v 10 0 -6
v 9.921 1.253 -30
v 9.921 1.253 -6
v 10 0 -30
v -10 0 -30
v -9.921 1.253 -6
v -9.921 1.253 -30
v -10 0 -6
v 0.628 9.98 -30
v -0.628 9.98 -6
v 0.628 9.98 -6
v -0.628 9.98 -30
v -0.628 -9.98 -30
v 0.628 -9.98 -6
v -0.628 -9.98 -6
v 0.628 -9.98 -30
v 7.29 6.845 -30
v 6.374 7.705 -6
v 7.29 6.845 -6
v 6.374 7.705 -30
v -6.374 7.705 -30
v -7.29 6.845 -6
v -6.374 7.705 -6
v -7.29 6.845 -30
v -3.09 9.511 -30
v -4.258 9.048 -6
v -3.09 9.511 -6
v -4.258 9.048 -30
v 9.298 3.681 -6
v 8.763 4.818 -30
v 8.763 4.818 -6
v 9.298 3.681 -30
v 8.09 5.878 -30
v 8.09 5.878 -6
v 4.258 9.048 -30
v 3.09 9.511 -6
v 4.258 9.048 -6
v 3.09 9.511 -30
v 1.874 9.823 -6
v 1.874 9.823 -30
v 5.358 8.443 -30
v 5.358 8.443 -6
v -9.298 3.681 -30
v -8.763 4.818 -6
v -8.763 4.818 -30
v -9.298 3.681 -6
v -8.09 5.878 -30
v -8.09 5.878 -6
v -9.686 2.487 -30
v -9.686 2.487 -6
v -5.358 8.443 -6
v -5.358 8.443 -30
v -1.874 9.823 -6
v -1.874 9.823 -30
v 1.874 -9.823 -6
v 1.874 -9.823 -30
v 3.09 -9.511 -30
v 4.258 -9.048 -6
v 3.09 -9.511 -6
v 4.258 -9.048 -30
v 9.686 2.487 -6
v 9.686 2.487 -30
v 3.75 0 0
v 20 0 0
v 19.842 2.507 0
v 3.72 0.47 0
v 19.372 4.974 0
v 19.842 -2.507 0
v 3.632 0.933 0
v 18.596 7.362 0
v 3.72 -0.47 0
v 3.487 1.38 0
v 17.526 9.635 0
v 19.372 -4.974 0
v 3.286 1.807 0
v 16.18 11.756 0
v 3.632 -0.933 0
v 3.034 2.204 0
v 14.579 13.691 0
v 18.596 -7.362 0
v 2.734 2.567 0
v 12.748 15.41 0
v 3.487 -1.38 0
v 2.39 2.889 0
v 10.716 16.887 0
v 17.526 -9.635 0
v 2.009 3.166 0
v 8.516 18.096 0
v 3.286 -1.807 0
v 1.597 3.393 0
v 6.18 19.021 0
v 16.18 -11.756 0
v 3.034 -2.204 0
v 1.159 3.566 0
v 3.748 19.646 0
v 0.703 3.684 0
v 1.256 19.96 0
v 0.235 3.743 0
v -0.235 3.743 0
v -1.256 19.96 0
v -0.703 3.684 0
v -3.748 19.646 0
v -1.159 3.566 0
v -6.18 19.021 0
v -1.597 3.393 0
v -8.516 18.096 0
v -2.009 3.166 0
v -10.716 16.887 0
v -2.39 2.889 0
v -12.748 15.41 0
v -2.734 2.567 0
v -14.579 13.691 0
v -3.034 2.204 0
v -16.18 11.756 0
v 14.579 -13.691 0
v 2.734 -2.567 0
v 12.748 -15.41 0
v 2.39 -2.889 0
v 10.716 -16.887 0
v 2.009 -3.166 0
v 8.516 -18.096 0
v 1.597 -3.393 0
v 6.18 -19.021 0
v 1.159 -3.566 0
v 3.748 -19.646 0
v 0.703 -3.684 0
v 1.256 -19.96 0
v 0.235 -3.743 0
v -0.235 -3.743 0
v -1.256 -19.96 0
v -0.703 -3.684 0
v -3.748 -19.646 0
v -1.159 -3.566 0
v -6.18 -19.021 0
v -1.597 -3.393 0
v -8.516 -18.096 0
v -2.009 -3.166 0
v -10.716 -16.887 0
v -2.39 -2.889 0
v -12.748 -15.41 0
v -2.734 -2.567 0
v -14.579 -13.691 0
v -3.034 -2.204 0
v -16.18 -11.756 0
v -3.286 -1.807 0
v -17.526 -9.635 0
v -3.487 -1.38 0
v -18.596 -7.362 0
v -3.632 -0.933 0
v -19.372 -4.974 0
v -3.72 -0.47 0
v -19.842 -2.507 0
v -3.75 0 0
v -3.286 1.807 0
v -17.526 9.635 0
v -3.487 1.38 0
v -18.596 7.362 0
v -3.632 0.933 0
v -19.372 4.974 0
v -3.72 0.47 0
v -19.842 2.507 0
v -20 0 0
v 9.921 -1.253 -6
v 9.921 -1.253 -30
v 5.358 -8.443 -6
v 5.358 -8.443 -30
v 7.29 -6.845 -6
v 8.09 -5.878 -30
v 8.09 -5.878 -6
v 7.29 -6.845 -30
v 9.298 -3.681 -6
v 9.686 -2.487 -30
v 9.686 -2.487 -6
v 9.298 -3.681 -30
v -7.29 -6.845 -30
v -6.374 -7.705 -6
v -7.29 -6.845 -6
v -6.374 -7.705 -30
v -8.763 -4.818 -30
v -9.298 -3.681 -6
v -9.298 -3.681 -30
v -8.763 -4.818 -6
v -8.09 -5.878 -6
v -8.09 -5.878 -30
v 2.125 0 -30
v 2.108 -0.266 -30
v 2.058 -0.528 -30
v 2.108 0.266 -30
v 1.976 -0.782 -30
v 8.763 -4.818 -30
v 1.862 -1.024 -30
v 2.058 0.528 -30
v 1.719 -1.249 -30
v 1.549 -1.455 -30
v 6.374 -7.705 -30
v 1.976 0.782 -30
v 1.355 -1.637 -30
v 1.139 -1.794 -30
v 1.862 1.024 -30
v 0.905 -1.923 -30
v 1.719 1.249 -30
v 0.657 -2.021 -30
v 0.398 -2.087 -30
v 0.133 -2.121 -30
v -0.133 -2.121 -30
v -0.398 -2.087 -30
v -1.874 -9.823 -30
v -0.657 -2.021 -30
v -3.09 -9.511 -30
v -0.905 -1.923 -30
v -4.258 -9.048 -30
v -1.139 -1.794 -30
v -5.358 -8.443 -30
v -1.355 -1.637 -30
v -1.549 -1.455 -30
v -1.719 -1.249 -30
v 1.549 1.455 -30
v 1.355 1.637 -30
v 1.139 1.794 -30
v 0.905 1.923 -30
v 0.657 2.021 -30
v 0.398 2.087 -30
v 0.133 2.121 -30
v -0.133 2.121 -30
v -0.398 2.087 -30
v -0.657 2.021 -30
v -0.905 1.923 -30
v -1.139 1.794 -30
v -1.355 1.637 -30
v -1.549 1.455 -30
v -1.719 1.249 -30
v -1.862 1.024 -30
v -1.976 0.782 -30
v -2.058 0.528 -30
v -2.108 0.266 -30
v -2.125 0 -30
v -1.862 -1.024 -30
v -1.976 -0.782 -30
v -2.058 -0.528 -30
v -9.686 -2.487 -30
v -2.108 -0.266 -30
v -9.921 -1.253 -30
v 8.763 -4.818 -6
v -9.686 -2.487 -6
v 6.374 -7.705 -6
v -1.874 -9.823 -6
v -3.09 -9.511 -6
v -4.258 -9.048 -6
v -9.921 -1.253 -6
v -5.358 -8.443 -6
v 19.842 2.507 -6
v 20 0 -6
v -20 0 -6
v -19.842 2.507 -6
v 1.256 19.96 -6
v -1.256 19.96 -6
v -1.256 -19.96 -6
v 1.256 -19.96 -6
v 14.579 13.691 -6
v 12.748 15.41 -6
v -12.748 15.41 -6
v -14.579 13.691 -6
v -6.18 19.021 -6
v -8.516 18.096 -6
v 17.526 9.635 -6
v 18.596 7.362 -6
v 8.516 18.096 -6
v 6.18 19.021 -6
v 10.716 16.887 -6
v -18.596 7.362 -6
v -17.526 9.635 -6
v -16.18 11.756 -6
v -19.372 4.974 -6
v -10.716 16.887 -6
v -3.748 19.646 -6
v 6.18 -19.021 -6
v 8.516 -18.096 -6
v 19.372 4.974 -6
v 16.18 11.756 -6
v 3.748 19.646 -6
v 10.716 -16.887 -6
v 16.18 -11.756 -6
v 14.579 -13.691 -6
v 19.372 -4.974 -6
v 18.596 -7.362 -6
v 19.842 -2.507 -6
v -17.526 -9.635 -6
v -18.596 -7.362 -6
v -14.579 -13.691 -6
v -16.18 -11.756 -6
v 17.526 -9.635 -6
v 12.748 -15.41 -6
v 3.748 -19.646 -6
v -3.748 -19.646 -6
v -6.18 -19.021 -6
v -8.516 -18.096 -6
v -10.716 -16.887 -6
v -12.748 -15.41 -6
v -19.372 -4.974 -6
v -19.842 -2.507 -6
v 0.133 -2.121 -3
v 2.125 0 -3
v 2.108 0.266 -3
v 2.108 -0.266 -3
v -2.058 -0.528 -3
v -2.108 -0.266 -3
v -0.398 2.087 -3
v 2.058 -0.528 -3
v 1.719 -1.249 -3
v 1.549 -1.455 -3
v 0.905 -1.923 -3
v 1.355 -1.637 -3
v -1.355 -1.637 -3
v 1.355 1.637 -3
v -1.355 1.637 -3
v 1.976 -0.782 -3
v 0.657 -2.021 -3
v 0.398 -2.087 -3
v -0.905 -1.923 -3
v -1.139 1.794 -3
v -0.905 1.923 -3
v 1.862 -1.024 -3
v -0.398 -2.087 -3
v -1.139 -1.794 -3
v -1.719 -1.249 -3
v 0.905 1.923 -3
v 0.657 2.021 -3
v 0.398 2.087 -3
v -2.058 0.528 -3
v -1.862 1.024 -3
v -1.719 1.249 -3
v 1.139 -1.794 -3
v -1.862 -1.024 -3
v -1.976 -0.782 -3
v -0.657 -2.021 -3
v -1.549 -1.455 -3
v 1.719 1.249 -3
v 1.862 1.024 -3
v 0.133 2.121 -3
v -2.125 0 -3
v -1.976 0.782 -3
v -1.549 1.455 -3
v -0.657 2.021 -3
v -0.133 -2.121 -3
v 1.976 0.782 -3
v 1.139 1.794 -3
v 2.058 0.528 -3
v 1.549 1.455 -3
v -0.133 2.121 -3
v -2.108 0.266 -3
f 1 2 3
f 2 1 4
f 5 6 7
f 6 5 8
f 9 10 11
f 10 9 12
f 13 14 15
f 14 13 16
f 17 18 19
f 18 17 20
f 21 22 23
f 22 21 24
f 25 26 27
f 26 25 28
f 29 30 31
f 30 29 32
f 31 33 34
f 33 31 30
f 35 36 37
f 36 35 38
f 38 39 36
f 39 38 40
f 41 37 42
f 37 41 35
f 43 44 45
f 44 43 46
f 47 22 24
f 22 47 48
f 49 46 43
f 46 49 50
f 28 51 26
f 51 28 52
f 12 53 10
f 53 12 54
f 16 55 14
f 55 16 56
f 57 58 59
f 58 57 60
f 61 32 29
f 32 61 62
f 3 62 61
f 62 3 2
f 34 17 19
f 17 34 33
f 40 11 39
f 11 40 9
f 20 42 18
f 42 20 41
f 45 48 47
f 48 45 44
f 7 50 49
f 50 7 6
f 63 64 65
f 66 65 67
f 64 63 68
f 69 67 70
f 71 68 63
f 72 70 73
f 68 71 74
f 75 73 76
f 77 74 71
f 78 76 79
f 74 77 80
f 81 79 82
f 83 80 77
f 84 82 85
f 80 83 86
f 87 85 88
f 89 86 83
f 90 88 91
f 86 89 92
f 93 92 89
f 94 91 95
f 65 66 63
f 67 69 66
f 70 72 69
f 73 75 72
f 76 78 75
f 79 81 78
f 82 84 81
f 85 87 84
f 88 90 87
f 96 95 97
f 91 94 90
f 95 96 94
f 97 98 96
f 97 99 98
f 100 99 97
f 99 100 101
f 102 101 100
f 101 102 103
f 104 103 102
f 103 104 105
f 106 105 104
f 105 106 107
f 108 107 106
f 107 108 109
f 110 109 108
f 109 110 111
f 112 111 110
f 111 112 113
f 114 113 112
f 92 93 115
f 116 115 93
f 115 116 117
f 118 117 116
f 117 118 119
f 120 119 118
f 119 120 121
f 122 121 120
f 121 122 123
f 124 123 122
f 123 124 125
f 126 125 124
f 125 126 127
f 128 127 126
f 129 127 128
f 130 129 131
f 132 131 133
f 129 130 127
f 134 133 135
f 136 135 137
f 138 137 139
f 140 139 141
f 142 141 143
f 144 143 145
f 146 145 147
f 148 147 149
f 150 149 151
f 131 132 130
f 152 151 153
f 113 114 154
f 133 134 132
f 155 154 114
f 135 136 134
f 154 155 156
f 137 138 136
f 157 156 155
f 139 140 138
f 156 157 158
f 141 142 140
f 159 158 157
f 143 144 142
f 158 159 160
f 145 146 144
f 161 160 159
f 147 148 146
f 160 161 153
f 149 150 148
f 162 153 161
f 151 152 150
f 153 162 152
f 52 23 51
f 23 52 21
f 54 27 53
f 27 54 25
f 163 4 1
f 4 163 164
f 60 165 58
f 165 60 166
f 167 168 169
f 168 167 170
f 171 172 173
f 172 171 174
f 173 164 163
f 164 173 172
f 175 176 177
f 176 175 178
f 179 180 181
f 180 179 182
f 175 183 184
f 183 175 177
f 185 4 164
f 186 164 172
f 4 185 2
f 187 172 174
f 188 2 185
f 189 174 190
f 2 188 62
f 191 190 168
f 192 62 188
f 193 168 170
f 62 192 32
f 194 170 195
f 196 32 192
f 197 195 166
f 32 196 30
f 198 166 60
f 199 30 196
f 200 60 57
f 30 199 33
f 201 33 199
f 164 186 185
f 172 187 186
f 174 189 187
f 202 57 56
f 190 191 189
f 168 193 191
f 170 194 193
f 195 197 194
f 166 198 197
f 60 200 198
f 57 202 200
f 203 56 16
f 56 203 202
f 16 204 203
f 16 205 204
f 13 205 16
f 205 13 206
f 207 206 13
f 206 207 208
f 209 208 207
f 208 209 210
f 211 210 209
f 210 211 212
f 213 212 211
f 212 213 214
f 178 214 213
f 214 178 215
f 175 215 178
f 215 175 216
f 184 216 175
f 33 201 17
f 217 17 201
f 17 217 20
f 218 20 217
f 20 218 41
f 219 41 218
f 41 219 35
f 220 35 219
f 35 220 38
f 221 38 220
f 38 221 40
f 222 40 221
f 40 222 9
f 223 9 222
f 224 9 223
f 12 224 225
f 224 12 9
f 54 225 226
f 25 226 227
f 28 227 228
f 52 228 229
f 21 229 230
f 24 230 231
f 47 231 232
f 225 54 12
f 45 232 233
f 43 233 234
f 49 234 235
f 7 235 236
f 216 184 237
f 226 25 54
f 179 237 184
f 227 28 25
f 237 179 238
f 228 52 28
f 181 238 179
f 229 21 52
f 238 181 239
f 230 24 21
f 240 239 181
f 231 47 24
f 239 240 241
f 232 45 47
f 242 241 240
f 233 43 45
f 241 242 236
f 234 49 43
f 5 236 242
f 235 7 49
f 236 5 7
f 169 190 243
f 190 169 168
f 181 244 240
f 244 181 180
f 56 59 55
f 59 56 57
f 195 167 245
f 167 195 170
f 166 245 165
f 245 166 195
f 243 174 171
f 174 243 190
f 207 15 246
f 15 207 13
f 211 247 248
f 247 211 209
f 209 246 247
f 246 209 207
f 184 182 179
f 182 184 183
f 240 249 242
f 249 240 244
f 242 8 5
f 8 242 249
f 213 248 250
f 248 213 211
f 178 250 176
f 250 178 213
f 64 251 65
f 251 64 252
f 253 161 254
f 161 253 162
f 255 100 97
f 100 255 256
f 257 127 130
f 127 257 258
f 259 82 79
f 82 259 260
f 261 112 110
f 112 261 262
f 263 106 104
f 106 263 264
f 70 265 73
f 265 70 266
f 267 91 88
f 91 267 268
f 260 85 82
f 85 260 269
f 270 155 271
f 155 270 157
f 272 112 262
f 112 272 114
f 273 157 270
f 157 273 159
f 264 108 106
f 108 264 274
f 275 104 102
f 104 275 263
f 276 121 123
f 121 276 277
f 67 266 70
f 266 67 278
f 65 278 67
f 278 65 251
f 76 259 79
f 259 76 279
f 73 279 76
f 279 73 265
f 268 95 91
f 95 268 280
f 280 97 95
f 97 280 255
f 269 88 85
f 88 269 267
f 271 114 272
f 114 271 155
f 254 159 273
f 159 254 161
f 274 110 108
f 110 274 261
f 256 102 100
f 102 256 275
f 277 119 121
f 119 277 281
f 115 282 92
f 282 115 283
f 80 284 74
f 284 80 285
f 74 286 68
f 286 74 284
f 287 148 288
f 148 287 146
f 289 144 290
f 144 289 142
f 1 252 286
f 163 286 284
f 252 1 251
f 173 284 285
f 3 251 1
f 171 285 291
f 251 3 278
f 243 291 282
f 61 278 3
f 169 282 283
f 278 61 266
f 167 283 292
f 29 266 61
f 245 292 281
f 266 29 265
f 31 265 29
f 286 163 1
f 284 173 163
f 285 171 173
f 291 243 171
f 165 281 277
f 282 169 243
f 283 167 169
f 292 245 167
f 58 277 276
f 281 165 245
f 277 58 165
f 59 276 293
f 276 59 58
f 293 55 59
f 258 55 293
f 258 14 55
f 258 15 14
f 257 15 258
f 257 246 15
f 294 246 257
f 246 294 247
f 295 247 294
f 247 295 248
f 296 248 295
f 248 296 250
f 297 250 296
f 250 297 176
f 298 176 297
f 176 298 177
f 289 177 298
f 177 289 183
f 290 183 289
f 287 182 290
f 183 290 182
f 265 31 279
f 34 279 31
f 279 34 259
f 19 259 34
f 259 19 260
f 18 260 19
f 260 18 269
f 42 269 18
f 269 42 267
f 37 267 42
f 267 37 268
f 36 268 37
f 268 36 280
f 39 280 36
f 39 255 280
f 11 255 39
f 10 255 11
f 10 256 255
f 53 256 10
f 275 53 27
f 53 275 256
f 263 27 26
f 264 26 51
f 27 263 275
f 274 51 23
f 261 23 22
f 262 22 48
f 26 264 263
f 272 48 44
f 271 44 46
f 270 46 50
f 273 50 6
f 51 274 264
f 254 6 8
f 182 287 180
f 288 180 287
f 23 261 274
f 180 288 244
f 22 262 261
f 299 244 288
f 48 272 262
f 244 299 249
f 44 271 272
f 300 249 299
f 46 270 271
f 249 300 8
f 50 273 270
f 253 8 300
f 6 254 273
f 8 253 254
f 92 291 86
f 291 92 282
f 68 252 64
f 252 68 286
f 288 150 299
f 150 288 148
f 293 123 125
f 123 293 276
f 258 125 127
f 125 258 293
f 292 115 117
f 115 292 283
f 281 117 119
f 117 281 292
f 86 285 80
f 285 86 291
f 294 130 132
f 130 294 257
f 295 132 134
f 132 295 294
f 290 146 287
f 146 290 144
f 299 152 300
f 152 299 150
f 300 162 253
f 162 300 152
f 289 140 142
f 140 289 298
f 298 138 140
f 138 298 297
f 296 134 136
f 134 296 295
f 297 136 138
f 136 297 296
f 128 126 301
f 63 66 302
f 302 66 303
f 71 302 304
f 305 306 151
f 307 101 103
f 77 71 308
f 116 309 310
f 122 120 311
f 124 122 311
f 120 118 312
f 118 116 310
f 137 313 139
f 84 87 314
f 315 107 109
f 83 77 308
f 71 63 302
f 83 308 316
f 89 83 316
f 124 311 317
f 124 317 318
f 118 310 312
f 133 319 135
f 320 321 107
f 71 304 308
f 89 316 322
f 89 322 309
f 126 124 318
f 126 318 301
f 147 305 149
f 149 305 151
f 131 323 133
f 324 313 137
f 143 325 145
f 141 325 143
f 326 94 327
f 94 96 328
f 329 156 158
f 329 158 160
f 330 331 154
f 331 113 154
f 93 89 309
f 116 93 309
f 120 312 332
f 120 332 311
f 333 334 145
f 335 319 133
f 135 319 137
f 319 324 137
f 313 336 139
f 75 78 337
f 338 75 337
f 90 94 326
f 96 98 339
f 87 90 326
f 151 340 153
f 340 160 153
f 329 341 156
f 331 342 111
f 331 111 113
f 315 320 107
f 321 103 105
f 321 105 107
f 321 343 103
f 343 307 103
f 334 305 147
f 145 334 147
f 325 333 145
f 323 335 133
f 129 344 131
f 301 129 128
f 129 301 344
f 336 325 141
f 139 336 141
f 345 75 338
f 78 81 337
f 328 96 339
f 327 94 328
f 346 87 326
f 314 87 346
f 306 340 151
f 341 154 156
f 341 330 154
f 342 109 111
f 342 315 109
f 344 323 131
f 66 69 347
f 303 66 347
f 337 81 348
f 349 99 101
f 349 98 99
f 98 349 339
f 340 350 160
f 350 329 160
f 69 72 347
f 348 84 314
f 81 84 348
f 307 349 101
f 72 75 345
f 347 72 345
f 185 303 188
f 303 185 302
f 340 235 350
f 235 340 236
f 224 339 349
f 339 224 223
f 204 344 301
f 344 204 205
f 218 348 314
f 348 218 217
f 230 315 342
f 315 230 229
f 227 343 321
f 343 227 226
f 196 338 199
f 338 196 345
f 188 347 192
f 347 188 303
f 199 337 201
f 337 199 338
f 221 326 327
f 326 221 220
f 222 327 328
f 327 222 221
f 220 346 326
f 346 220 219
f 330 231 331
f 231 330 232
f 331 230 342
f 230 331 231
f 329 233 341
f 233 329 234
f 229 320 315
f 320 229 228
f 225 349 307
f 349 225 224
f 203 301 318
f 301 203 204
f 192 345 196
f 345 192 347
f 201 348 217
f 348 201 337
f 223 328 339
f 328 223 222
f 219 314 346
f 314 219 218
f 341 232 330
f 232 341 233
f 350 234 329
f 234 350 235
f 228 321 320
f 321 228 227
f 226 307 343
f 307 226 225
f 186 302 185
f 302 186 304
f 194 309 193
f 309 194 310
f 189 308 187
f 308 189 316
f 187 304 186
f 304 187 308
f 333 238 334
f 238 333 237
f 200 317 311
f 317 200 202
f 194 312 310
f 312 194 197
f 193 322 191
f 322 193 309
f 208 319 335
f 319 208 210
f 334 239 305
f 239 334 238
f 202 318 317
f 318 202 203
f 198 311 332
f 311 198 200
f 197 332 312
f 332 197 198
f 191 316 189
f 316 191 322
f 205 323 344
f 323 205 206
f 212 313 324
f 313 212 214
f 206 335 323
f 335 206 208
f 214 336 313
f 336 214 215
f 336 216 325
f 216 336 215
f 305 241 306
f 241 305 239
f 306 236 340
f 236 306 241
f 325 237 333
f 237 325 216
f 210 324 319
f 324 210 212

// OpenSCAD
$fn = 50;


difference() {
	union() {
		translate(v = [0, 0, -30.0000000000]) {
			cylinder(h = 30, r = 10.0000000000);
		}
		translate(v = [0, 0, -6.0000000000]) {
			cylinder(h = 6, r = 20.0000000000);
		}
	}
	union() {
		translate(v = [0, 0, 0]) {
			rotate(a = [0, 0, 0]) {
				difference() {
					union() {
						#translate(v = [0, 0, -30.0000000000]) {
							cylinder(h = 30, r = 2.0000000000);
						}
						#translate(v = [0, 0, -3]) {
							cylinder(h = 3, r = 10.0000000000, r1 = 2.1250000000, r2 = 3.7500000000);
						}
						#translate(v = [0, 0, -30.0000000000]) {
							cylinder(h = 30, r = 2.1250000000);
						}
						#translate(v = [0, 0, -30.0000000000]) {
							cylinder(h = 30, r = 2.0000000000);
						}
					}
					union();
				}
			}
		}
	}
}
